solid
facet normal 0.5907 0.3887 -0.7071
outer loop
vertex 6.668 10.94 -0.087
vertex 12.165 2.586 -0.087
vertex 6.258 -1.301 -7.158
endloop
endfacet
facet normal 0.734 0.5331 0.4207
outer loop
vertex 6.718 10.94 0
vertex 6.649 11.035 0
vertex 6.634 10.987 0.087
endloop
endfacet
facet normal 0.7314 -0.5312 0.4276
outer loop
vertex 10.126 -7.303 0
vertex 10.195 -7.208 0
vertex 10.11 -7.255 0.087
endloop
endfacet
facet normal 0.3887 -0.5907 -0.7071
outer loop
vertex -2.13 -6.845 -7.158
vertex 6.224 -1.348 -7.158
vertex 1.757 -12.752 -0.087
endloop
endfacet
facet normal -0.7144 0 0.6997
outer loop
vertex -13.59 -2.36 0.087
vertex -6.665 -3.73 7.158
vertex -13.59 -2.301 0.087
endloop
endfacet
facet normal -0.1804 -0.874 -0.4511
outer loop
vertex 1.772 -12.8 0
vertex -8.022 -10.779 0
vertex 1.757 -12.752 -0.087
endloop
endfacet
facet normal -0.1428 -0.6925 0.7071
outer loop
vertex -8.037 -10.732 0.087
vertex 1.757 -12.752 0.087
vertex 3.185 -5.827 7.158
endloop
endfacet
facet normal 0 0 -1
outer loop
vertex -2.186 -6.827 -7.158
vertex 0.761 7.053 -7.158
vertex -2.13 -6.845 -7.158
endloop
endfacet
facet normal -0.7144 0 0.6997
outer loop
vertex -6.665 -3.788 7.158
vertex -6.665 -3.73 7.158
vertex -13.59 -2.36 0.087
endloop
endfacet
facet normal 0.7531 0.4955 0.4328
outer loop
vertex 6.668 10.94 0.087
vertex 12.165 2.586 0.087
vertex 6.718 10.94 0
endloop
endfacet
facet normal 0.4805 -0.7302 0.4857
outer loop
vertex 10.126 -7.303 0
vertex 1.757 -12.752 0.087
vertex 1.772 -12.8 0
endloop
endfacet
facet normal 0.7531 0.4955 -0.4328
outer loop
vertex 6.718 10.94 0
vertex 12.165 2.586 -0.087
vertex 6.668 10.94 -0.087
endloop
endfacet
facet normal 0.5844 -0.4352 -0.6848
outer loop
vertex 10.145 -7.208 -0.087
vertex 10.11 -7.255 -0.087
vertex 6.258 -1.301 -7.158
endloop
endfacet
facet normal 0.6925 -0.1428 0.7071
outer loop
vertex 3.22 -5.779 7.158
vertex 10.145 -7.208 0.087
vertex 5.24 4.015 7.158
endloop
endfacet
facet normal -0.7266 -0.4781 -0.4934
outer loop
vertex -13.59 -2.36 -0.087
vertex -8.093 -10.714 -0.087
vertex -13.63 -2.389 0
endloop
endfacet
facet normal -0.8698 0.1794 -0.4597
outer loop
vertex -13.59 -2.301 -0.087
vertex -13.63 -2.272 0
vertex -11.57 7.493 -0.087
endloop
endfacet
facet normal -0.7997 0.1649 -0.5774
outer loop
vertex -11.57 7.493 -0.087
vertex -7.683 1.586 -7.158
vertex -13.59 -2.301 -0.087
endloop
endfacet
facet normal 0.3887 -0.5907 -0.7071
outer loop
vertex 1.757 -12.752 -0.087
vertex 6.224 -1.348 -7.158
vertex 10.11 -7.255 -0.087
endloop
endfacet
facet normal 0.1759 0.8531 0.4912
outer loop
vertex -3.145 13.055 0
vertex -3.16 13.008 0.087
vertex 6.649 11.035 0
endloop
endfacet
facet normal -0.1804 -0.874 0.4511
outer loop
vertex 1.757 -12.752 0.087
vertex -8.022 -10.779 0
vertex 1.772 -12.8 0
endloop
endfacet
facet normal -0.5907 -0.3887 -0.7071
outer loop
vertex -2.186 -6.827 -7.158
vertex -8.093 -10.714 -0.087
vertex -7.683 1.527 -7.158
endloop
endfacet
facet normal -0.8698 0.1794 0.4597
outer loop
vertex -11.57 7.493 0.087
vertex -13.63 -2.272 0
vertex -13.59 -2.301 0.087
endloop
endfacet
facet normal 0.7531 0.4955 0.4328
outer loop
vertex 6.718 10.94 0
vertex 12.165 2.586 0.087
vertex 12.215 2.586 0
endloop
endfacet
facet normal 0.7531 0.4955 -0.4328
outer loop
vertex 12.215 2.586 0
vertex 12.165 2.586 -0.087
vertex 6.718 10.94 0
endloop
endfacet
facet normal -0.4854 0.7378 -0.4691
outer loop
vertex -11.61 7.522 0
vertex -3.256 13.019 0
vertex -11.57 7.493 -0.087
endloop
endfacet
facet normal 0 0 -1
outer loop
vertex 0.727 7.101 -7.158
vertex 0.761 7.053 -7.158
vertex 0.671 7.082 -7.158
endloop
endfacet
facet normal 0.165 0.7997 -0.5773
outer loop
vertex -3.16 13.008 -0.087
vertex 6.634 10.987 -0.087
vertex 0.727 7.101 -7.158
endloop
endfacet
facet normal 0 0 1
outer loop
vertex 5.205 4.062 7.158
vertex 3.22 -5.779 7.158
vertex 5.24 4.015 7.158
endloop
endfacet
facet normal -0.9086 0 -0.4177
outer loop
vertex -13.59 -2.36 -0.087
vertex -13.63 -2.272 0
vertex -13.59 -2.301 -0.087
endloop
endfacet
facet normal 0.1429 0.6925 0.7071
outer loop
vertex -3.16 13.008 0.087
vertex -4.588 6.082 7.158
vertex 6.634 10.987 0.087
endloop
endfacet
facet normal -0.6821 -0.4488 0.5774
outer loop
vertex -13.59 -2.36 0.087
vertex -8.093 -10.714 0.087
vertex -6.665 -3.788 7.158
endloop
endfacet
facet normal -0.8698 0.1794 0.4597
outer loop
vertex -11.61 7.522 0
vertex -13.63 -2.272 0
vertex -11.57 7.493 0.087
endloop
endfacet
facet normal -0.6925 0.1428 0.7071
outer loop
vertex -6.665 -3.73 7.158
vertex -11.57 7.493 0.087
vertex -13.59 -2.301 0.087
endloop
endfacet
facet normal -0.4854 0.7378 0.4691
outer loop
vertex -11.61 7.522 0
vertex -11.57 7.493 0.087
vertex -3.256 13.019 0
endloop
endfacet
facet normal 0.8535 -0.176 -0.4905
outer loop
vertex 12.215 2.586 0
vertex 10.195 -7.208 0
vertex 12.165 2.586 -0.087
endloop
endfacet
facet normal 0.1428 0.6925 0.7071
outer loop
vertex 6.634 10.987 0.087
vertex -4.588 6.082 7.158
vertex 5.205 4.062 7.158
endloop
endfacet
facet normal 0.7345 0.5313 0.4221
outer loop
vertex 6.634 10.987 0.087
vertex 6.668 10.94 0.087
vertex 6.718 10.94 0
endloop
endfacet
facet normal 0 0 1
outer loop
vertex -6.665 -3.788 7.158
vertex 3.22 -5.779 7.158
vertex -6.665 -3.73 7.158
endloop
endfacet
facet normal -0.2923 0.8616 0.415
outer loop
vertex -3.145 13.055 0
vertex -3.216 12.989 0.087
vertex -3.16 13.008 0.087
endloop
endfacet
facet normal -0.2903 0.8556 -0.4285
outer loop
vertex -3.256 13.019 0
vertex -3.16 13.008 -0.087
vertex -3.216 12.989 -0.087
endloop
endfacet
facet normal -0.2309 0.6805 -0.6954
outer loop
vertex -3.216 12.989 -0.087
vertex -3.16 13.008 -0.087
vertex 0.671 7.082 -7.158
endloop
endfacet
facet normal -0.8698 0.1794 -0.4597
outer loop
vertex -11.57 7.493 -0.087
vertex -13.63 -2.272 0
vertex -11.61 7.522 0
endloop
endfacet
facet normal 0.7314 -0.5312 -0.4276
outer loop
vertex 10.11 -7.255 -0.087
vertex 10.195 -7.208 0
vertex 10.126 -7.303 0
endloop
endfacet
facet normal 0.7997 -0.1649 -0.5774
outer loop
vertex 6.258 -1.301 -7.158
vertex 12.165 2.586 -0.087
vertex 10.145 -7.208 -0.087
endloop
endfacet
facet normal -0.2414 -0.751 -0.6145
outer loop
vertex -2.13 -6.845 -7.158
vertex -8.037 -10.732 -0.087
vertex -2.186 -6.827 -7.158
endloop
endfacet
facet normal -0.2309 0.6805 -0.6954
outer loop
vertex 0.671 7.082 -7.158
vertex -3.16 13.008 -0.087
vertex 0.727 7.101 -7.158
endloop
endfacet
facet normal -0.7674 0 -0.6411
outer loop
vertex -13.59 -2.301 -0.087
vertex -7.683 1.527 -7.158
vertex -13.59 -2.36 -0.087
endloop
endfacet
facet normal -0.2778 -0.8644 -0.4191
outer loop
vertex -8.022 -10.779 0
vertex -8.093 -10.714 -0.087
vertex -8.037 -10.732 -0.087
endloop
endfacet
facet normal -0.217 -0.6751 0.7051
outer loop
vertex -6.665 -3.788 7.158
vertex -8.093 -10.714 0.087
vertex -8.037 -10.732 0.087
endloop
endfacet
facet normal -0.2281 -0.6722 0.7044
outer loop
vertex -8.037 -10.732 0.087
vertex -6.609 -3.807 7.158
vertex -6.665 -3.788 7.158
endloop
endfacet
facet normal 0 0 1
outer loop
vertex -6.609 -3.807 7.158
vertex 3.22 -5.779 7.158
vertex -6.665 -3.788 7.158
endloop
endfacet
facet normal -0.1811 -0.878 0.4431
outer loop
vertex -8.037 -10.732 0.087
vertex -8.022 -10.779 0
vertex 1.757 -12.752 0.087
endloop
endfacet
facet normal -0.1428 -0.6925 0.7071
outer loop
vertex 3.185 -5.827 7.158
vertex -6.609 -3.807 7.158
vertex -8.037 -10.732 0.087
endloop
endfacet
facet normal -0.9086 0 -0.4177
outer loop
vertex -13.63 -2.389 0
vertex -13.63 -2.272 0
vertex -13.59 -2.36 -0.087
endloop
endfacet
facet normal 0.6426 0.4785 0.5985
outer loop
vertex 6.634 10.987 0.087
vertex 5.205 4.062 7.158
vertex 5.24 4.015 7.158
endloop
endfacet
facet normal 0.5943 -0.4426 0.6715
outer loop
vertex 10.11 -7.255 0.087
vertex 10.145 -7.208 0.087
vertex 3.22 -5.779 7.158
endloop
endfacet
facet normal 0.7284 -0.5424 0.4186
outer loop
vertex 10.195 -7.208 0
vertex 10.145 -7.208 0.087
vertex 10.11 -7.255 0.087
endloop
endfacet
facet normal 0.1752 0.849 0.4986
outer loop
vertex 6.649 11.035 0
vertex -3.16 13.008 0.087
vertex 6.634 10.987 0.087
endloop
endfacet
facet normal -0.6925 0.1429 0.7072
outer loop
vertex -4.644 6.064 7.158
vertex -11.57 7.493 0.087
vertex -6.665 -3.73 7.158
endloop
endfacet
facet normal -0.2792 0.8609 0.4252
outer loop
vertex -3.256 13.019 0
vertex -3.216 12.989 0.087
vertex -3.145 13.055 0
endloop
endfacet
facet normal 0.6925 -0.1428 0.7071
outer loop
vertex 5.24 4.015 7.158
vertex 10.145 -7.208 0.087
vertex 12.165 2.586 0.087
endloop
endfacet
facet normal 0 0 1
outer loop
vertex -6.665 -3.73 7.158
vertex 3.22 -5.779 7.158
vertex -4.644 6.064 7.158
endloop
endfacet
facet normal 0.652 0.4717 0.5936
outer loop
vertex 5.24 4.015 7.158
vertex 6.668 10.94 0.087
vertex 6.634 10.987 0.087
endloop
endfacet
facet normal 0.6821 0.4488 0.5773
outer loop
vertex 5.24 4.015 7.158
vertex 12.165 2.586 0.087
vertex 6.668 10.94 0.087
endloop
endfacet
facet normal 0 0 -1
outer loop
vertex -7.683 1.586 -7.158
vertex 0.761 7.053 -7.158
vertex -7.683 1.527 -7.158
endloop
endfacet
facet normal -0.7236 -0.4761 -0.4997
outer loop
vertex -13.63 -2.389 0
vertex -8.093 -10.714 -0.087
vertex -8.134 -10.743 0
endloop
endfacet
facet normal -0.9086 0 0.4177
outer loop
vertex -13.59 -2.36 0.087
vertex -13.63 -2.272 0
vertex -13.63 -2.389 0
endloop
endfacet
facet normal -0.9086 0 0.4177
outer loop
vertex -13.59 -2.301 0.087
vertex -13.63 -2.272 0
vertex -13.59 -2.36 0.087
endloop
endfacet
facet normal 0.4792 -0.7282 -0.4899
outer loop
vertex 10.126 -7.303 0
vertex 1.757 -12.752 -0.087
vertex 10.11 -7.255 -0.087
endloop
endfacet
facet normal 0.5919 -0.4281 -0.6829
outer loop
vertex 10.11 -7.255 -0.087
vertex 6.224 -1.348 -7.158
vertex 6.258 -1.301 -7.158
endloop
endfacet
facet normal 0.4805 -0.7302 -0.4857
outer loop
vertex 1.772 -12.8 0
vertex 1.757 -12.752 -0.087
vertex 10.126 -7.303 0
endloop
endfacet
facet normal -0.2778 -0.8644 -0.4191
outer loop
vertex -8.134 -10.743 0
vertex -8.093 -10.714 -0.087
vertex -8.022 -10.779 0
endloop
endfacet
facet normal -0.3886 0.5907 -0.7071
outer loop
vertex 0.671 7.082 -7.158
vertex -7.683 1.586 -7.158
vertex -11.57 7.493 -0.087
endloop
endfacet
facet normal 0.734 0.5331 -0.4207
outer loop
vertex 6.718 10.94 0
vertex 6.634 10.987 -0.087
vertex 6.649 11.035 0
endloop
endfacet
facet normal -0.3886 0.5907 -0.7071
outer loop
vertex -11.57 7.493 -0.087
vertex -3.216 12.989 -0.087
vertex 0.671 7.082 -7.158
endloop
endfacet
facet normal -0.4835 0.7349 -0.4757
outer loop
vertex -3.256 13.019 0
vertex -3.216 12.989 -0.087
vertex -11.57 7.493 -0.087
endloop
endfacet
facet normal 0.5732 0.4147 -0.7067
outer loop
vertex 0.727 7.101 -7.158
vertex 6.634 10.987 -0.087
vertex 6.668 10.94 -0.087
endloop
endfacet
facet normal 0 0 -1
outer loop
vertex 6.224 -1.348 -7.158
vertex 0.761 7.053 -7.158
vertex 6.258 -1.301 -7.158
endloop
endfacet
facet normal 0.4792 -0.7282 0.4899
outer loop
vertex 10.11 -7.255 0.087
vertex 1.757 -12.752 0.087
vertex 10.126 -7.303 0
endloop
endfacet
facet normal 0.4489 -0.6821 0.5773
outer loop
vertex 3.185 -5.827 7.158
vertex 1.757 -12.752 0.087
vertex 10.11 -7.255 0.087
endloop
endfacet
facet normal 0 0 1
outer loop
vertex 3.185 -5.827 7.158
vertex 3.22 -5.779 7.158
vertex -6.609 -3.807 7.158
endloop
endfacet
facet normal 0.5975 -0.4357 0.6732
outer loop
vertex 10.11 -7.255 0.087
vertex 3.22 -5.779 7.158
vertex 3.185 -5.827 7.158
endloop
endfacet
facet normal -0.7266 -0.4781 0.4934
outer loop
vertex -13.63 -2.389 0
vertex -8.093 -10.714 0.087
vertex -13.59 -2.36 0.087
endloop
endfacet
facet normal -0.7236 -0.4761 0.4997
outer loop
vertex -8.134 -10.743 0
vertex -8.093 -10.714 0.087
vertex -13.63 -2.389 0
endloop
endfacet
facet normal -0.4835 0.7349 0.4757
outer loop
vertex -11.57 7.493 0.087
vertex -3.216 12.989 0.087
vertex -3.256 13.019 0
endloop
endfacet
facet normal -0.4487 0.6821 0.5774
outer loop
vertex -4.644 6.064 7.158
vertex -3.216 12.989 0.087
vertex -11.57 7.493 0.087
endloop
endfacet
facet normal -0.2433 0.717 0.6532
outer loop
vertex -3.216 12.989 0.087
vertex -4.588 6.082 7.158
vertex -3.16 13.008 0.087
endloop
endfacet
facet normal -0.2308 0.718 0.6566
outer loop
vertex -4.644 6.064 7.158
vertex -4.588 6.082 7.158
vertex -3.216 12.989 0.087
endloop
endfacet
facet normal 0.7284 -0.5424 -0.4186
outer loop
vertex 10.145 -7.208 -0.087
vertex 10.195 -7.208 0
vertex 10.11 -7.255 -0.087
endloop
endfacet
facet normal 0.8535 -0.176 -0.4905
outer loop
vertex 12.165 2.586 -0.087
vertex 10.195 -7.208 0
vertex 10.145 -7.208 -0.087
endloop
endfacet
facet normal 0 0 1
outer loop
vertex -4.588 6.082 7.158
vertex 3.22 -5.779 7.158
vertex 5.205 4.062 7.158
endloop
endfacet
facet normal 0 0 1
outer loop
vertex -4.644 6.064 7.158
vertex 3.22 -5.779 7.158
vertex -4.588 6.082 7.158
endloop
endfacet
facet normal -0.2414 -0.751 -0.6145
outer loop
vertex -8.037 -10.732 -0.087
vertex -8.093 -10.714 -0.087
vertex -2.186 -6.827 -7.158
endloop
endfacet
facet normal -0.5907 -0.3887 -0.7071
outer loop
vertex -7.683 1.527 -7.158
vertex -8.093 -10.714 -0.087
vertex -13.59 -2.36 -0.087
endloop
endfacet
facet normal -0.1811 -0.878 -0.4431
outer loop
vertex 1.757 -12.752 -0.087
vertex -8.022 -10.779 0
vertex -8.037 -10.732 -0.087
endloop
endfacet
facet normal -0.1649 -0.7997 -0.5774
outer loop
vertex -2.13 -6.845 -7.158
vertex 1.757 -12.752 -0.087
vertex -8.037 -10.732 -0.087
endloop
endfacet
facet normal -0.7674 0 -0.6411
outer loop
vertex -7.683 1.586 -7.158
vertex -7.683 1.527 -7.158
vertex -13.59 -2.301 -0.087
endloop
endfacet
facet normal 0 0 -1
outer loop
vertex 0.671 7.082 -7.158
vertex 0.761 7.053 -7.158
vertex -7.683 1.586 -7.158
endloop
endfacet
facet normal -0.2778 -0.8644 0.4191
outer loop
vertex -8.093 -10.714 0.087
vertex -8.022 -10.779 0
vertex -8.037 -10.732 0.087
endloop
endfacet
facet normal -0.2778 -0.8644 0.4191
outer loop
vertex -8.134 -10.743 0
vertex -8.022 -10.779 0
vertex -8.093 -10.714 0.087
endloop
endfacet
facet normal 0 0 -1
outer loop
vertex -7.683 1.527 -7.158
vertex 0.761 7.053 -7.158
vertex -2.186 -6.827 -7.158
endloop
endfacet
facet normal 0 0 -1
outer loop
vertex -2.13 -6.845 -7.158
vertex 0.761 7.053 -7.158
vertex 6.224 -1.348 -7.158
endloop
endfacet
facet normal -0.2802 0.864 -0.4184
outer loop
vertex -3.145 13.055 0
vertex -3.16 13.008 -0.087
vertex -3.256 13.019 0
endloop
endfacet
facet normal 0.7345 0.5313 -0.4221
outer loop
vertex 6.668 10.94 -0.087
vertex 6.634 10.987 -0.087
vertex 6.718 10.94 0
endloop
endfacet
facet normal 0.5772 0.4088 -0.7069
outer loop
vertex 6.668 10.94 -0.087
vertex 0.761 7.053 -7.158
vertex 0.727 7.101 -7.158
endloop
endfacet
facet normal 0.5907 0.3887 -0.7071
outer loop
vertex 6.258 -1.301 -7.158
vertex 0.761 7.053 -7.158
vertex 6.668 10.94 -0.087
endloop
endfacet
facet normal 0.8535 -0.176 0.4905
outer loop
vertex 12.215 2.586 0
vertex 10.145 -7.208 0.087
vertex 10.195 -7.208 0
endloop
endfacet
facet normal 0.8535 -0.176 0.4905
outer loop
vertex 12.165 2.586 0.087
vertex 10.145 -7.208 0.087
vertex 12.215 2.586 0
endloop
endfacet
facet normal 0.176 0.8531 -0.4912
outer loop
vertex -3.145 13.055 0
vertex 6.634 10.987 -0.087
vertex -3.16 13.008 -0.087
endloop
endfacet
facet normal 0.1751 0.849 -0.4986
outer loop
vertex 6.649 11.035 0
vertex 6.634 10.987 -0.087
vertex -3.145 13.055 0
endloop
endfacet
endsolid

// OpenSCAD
// Auto-generated OpenSCAD file

    inner_points = 10*[[0.6618356586031374, 1.0939888076971127, -5.2961835526280225e-12], [1.2115149155156972, 0.2586130153018244, -8.202180877206917e-12], [-1.3549399090757386, -0.23305430929635412, 8.202180877206917e-12], [-0.8052606521631785, -1.0684301016916424, 5.2961835526280225e-12], [-0.3175461590791098, 1.296006765298453, 7.122462682630471e-13], [1.009496957914357, -0.7207688023804228, -6.30345188495525e-12], [-1.1529219514743982, 0.7463275083858931, 6.30345188495525e-12], [0.1741211655190687, -1.2704480592929828, -7.122462682630471e-13], [0.5189873908662057, 0.40146128304364537, 0.707106781182594], [-0.6624123844173823, -0.37590257703726176, 0.7071067811905012], [-0.4603944268160419, 0.6034792406449857, 0.7071067811886024], [0.31696943326486526, -0.5779205346386022, 0.7071067811844928], [0.07113577095691147, 0.7053068776562026, -0.7071067811878903], [0.6208150278694714, -0.13006891473908572, -0.7071067811907962], [-0.764240021438377, 0.15562762074364267, -0.707106781182299], [-0.21456076452581702, -0.6797481716516456, -0.7071067811852049]];

    outer_points = 10*[[-0.8605920804643427, 0.10933680605329854, -0.9770023106782629], [0.05998820059622045, -0.10933680605329854, -1.300597424193143], [-0.05998820059622045, 0.10933680605329854, 1.300597424193143], [0.8605920804643427, -0.10933680605329854, 0.9770023106782629], [-1.2770491924597716, 0.26396240004043003, -0.08109249403790869], [0.9454282073298752, -0.26396240004043003, -0.8623202058031931], [-0.9454282073298752, 0.26396240004043003, 0.8623202058031931], [1.2770491924597716, -0.26396240004043003, 0.08109249403790869], [-0.08861569828117916, 0.689993424377455, -0.7183706093194601], [0.38036719645704675, 0.689993424377455, 0.6158164257108442], [-0.5050728102766082, 0.8446190183645865, 0.17753920732089434], [0.7968243084524758, 0.5353678303903235, -0.2800933909295102], [-0.7719763821831634, -0.5806566183241565, -0.258631701358803], [0.1486038988773996, -0.7993302304307536, -0.582226814873683], [-0.4403553970532671, -0.5806566183241565, 0.6847809984822989], [0.48022488400729596, -0.7993302304307536, 0.3611858849674189]];

    // Convex hull for inner set (I)
    module inner_hull() {
        hull() {
            for (p = inner_points) {
                translate(p) sphere(r=0.1);
            }
        }
    }

    // Convex hull for outer set (O) minus inner hull (O \ I)
    module outer_minus_inner() {
        difference() {
            hull() {
                for (p = outer_points) {
                    translate(p) sphere(r=0.1);
                }
            }
            inner_hull(); // Subtract inner hull
        }
    }

    // Convex hull for outer set (O) minus all translated inner hulls
    module outer_minus_AllTranslationInner() {
        difference() {
            hull() {
                for (p = outer_points) {
                    translate(p) sphere(r=0.1);
                }
            }
            hull() {
                translate([0,0,50]) inner_hull();
                translate([0,0,-50]) inner_hull();
            }; // Subtract translated inner hulls
        }
    }

    // Difference between outer_minus_inner and outer_minus_AllTranslationInner
    module outer_minus_inner_diff() {
        difference() {
            // Outer minus inner
            difference() {
                hull() {
                    for (p = outer_points) {
                        translate(p) sphere(r=0.1);
                    }
                }
                inner_hull();
            }

            // Subtract Outer minus AllTranslationInner
            difference() {
                hull() {
                    for (p = outer_points) {
                        translate(p) sphere(r=0.1);
                    }
                }
                hull() {
                    translate([0,0,50]) inner_hull();
                    translate([0,0,-50]) inner_hull();
                };
            }
        }
    }

    // Rendering all with colors applied
    color([1, 0, 0, 0.5]) inner_hull(); // Transparent red
    
